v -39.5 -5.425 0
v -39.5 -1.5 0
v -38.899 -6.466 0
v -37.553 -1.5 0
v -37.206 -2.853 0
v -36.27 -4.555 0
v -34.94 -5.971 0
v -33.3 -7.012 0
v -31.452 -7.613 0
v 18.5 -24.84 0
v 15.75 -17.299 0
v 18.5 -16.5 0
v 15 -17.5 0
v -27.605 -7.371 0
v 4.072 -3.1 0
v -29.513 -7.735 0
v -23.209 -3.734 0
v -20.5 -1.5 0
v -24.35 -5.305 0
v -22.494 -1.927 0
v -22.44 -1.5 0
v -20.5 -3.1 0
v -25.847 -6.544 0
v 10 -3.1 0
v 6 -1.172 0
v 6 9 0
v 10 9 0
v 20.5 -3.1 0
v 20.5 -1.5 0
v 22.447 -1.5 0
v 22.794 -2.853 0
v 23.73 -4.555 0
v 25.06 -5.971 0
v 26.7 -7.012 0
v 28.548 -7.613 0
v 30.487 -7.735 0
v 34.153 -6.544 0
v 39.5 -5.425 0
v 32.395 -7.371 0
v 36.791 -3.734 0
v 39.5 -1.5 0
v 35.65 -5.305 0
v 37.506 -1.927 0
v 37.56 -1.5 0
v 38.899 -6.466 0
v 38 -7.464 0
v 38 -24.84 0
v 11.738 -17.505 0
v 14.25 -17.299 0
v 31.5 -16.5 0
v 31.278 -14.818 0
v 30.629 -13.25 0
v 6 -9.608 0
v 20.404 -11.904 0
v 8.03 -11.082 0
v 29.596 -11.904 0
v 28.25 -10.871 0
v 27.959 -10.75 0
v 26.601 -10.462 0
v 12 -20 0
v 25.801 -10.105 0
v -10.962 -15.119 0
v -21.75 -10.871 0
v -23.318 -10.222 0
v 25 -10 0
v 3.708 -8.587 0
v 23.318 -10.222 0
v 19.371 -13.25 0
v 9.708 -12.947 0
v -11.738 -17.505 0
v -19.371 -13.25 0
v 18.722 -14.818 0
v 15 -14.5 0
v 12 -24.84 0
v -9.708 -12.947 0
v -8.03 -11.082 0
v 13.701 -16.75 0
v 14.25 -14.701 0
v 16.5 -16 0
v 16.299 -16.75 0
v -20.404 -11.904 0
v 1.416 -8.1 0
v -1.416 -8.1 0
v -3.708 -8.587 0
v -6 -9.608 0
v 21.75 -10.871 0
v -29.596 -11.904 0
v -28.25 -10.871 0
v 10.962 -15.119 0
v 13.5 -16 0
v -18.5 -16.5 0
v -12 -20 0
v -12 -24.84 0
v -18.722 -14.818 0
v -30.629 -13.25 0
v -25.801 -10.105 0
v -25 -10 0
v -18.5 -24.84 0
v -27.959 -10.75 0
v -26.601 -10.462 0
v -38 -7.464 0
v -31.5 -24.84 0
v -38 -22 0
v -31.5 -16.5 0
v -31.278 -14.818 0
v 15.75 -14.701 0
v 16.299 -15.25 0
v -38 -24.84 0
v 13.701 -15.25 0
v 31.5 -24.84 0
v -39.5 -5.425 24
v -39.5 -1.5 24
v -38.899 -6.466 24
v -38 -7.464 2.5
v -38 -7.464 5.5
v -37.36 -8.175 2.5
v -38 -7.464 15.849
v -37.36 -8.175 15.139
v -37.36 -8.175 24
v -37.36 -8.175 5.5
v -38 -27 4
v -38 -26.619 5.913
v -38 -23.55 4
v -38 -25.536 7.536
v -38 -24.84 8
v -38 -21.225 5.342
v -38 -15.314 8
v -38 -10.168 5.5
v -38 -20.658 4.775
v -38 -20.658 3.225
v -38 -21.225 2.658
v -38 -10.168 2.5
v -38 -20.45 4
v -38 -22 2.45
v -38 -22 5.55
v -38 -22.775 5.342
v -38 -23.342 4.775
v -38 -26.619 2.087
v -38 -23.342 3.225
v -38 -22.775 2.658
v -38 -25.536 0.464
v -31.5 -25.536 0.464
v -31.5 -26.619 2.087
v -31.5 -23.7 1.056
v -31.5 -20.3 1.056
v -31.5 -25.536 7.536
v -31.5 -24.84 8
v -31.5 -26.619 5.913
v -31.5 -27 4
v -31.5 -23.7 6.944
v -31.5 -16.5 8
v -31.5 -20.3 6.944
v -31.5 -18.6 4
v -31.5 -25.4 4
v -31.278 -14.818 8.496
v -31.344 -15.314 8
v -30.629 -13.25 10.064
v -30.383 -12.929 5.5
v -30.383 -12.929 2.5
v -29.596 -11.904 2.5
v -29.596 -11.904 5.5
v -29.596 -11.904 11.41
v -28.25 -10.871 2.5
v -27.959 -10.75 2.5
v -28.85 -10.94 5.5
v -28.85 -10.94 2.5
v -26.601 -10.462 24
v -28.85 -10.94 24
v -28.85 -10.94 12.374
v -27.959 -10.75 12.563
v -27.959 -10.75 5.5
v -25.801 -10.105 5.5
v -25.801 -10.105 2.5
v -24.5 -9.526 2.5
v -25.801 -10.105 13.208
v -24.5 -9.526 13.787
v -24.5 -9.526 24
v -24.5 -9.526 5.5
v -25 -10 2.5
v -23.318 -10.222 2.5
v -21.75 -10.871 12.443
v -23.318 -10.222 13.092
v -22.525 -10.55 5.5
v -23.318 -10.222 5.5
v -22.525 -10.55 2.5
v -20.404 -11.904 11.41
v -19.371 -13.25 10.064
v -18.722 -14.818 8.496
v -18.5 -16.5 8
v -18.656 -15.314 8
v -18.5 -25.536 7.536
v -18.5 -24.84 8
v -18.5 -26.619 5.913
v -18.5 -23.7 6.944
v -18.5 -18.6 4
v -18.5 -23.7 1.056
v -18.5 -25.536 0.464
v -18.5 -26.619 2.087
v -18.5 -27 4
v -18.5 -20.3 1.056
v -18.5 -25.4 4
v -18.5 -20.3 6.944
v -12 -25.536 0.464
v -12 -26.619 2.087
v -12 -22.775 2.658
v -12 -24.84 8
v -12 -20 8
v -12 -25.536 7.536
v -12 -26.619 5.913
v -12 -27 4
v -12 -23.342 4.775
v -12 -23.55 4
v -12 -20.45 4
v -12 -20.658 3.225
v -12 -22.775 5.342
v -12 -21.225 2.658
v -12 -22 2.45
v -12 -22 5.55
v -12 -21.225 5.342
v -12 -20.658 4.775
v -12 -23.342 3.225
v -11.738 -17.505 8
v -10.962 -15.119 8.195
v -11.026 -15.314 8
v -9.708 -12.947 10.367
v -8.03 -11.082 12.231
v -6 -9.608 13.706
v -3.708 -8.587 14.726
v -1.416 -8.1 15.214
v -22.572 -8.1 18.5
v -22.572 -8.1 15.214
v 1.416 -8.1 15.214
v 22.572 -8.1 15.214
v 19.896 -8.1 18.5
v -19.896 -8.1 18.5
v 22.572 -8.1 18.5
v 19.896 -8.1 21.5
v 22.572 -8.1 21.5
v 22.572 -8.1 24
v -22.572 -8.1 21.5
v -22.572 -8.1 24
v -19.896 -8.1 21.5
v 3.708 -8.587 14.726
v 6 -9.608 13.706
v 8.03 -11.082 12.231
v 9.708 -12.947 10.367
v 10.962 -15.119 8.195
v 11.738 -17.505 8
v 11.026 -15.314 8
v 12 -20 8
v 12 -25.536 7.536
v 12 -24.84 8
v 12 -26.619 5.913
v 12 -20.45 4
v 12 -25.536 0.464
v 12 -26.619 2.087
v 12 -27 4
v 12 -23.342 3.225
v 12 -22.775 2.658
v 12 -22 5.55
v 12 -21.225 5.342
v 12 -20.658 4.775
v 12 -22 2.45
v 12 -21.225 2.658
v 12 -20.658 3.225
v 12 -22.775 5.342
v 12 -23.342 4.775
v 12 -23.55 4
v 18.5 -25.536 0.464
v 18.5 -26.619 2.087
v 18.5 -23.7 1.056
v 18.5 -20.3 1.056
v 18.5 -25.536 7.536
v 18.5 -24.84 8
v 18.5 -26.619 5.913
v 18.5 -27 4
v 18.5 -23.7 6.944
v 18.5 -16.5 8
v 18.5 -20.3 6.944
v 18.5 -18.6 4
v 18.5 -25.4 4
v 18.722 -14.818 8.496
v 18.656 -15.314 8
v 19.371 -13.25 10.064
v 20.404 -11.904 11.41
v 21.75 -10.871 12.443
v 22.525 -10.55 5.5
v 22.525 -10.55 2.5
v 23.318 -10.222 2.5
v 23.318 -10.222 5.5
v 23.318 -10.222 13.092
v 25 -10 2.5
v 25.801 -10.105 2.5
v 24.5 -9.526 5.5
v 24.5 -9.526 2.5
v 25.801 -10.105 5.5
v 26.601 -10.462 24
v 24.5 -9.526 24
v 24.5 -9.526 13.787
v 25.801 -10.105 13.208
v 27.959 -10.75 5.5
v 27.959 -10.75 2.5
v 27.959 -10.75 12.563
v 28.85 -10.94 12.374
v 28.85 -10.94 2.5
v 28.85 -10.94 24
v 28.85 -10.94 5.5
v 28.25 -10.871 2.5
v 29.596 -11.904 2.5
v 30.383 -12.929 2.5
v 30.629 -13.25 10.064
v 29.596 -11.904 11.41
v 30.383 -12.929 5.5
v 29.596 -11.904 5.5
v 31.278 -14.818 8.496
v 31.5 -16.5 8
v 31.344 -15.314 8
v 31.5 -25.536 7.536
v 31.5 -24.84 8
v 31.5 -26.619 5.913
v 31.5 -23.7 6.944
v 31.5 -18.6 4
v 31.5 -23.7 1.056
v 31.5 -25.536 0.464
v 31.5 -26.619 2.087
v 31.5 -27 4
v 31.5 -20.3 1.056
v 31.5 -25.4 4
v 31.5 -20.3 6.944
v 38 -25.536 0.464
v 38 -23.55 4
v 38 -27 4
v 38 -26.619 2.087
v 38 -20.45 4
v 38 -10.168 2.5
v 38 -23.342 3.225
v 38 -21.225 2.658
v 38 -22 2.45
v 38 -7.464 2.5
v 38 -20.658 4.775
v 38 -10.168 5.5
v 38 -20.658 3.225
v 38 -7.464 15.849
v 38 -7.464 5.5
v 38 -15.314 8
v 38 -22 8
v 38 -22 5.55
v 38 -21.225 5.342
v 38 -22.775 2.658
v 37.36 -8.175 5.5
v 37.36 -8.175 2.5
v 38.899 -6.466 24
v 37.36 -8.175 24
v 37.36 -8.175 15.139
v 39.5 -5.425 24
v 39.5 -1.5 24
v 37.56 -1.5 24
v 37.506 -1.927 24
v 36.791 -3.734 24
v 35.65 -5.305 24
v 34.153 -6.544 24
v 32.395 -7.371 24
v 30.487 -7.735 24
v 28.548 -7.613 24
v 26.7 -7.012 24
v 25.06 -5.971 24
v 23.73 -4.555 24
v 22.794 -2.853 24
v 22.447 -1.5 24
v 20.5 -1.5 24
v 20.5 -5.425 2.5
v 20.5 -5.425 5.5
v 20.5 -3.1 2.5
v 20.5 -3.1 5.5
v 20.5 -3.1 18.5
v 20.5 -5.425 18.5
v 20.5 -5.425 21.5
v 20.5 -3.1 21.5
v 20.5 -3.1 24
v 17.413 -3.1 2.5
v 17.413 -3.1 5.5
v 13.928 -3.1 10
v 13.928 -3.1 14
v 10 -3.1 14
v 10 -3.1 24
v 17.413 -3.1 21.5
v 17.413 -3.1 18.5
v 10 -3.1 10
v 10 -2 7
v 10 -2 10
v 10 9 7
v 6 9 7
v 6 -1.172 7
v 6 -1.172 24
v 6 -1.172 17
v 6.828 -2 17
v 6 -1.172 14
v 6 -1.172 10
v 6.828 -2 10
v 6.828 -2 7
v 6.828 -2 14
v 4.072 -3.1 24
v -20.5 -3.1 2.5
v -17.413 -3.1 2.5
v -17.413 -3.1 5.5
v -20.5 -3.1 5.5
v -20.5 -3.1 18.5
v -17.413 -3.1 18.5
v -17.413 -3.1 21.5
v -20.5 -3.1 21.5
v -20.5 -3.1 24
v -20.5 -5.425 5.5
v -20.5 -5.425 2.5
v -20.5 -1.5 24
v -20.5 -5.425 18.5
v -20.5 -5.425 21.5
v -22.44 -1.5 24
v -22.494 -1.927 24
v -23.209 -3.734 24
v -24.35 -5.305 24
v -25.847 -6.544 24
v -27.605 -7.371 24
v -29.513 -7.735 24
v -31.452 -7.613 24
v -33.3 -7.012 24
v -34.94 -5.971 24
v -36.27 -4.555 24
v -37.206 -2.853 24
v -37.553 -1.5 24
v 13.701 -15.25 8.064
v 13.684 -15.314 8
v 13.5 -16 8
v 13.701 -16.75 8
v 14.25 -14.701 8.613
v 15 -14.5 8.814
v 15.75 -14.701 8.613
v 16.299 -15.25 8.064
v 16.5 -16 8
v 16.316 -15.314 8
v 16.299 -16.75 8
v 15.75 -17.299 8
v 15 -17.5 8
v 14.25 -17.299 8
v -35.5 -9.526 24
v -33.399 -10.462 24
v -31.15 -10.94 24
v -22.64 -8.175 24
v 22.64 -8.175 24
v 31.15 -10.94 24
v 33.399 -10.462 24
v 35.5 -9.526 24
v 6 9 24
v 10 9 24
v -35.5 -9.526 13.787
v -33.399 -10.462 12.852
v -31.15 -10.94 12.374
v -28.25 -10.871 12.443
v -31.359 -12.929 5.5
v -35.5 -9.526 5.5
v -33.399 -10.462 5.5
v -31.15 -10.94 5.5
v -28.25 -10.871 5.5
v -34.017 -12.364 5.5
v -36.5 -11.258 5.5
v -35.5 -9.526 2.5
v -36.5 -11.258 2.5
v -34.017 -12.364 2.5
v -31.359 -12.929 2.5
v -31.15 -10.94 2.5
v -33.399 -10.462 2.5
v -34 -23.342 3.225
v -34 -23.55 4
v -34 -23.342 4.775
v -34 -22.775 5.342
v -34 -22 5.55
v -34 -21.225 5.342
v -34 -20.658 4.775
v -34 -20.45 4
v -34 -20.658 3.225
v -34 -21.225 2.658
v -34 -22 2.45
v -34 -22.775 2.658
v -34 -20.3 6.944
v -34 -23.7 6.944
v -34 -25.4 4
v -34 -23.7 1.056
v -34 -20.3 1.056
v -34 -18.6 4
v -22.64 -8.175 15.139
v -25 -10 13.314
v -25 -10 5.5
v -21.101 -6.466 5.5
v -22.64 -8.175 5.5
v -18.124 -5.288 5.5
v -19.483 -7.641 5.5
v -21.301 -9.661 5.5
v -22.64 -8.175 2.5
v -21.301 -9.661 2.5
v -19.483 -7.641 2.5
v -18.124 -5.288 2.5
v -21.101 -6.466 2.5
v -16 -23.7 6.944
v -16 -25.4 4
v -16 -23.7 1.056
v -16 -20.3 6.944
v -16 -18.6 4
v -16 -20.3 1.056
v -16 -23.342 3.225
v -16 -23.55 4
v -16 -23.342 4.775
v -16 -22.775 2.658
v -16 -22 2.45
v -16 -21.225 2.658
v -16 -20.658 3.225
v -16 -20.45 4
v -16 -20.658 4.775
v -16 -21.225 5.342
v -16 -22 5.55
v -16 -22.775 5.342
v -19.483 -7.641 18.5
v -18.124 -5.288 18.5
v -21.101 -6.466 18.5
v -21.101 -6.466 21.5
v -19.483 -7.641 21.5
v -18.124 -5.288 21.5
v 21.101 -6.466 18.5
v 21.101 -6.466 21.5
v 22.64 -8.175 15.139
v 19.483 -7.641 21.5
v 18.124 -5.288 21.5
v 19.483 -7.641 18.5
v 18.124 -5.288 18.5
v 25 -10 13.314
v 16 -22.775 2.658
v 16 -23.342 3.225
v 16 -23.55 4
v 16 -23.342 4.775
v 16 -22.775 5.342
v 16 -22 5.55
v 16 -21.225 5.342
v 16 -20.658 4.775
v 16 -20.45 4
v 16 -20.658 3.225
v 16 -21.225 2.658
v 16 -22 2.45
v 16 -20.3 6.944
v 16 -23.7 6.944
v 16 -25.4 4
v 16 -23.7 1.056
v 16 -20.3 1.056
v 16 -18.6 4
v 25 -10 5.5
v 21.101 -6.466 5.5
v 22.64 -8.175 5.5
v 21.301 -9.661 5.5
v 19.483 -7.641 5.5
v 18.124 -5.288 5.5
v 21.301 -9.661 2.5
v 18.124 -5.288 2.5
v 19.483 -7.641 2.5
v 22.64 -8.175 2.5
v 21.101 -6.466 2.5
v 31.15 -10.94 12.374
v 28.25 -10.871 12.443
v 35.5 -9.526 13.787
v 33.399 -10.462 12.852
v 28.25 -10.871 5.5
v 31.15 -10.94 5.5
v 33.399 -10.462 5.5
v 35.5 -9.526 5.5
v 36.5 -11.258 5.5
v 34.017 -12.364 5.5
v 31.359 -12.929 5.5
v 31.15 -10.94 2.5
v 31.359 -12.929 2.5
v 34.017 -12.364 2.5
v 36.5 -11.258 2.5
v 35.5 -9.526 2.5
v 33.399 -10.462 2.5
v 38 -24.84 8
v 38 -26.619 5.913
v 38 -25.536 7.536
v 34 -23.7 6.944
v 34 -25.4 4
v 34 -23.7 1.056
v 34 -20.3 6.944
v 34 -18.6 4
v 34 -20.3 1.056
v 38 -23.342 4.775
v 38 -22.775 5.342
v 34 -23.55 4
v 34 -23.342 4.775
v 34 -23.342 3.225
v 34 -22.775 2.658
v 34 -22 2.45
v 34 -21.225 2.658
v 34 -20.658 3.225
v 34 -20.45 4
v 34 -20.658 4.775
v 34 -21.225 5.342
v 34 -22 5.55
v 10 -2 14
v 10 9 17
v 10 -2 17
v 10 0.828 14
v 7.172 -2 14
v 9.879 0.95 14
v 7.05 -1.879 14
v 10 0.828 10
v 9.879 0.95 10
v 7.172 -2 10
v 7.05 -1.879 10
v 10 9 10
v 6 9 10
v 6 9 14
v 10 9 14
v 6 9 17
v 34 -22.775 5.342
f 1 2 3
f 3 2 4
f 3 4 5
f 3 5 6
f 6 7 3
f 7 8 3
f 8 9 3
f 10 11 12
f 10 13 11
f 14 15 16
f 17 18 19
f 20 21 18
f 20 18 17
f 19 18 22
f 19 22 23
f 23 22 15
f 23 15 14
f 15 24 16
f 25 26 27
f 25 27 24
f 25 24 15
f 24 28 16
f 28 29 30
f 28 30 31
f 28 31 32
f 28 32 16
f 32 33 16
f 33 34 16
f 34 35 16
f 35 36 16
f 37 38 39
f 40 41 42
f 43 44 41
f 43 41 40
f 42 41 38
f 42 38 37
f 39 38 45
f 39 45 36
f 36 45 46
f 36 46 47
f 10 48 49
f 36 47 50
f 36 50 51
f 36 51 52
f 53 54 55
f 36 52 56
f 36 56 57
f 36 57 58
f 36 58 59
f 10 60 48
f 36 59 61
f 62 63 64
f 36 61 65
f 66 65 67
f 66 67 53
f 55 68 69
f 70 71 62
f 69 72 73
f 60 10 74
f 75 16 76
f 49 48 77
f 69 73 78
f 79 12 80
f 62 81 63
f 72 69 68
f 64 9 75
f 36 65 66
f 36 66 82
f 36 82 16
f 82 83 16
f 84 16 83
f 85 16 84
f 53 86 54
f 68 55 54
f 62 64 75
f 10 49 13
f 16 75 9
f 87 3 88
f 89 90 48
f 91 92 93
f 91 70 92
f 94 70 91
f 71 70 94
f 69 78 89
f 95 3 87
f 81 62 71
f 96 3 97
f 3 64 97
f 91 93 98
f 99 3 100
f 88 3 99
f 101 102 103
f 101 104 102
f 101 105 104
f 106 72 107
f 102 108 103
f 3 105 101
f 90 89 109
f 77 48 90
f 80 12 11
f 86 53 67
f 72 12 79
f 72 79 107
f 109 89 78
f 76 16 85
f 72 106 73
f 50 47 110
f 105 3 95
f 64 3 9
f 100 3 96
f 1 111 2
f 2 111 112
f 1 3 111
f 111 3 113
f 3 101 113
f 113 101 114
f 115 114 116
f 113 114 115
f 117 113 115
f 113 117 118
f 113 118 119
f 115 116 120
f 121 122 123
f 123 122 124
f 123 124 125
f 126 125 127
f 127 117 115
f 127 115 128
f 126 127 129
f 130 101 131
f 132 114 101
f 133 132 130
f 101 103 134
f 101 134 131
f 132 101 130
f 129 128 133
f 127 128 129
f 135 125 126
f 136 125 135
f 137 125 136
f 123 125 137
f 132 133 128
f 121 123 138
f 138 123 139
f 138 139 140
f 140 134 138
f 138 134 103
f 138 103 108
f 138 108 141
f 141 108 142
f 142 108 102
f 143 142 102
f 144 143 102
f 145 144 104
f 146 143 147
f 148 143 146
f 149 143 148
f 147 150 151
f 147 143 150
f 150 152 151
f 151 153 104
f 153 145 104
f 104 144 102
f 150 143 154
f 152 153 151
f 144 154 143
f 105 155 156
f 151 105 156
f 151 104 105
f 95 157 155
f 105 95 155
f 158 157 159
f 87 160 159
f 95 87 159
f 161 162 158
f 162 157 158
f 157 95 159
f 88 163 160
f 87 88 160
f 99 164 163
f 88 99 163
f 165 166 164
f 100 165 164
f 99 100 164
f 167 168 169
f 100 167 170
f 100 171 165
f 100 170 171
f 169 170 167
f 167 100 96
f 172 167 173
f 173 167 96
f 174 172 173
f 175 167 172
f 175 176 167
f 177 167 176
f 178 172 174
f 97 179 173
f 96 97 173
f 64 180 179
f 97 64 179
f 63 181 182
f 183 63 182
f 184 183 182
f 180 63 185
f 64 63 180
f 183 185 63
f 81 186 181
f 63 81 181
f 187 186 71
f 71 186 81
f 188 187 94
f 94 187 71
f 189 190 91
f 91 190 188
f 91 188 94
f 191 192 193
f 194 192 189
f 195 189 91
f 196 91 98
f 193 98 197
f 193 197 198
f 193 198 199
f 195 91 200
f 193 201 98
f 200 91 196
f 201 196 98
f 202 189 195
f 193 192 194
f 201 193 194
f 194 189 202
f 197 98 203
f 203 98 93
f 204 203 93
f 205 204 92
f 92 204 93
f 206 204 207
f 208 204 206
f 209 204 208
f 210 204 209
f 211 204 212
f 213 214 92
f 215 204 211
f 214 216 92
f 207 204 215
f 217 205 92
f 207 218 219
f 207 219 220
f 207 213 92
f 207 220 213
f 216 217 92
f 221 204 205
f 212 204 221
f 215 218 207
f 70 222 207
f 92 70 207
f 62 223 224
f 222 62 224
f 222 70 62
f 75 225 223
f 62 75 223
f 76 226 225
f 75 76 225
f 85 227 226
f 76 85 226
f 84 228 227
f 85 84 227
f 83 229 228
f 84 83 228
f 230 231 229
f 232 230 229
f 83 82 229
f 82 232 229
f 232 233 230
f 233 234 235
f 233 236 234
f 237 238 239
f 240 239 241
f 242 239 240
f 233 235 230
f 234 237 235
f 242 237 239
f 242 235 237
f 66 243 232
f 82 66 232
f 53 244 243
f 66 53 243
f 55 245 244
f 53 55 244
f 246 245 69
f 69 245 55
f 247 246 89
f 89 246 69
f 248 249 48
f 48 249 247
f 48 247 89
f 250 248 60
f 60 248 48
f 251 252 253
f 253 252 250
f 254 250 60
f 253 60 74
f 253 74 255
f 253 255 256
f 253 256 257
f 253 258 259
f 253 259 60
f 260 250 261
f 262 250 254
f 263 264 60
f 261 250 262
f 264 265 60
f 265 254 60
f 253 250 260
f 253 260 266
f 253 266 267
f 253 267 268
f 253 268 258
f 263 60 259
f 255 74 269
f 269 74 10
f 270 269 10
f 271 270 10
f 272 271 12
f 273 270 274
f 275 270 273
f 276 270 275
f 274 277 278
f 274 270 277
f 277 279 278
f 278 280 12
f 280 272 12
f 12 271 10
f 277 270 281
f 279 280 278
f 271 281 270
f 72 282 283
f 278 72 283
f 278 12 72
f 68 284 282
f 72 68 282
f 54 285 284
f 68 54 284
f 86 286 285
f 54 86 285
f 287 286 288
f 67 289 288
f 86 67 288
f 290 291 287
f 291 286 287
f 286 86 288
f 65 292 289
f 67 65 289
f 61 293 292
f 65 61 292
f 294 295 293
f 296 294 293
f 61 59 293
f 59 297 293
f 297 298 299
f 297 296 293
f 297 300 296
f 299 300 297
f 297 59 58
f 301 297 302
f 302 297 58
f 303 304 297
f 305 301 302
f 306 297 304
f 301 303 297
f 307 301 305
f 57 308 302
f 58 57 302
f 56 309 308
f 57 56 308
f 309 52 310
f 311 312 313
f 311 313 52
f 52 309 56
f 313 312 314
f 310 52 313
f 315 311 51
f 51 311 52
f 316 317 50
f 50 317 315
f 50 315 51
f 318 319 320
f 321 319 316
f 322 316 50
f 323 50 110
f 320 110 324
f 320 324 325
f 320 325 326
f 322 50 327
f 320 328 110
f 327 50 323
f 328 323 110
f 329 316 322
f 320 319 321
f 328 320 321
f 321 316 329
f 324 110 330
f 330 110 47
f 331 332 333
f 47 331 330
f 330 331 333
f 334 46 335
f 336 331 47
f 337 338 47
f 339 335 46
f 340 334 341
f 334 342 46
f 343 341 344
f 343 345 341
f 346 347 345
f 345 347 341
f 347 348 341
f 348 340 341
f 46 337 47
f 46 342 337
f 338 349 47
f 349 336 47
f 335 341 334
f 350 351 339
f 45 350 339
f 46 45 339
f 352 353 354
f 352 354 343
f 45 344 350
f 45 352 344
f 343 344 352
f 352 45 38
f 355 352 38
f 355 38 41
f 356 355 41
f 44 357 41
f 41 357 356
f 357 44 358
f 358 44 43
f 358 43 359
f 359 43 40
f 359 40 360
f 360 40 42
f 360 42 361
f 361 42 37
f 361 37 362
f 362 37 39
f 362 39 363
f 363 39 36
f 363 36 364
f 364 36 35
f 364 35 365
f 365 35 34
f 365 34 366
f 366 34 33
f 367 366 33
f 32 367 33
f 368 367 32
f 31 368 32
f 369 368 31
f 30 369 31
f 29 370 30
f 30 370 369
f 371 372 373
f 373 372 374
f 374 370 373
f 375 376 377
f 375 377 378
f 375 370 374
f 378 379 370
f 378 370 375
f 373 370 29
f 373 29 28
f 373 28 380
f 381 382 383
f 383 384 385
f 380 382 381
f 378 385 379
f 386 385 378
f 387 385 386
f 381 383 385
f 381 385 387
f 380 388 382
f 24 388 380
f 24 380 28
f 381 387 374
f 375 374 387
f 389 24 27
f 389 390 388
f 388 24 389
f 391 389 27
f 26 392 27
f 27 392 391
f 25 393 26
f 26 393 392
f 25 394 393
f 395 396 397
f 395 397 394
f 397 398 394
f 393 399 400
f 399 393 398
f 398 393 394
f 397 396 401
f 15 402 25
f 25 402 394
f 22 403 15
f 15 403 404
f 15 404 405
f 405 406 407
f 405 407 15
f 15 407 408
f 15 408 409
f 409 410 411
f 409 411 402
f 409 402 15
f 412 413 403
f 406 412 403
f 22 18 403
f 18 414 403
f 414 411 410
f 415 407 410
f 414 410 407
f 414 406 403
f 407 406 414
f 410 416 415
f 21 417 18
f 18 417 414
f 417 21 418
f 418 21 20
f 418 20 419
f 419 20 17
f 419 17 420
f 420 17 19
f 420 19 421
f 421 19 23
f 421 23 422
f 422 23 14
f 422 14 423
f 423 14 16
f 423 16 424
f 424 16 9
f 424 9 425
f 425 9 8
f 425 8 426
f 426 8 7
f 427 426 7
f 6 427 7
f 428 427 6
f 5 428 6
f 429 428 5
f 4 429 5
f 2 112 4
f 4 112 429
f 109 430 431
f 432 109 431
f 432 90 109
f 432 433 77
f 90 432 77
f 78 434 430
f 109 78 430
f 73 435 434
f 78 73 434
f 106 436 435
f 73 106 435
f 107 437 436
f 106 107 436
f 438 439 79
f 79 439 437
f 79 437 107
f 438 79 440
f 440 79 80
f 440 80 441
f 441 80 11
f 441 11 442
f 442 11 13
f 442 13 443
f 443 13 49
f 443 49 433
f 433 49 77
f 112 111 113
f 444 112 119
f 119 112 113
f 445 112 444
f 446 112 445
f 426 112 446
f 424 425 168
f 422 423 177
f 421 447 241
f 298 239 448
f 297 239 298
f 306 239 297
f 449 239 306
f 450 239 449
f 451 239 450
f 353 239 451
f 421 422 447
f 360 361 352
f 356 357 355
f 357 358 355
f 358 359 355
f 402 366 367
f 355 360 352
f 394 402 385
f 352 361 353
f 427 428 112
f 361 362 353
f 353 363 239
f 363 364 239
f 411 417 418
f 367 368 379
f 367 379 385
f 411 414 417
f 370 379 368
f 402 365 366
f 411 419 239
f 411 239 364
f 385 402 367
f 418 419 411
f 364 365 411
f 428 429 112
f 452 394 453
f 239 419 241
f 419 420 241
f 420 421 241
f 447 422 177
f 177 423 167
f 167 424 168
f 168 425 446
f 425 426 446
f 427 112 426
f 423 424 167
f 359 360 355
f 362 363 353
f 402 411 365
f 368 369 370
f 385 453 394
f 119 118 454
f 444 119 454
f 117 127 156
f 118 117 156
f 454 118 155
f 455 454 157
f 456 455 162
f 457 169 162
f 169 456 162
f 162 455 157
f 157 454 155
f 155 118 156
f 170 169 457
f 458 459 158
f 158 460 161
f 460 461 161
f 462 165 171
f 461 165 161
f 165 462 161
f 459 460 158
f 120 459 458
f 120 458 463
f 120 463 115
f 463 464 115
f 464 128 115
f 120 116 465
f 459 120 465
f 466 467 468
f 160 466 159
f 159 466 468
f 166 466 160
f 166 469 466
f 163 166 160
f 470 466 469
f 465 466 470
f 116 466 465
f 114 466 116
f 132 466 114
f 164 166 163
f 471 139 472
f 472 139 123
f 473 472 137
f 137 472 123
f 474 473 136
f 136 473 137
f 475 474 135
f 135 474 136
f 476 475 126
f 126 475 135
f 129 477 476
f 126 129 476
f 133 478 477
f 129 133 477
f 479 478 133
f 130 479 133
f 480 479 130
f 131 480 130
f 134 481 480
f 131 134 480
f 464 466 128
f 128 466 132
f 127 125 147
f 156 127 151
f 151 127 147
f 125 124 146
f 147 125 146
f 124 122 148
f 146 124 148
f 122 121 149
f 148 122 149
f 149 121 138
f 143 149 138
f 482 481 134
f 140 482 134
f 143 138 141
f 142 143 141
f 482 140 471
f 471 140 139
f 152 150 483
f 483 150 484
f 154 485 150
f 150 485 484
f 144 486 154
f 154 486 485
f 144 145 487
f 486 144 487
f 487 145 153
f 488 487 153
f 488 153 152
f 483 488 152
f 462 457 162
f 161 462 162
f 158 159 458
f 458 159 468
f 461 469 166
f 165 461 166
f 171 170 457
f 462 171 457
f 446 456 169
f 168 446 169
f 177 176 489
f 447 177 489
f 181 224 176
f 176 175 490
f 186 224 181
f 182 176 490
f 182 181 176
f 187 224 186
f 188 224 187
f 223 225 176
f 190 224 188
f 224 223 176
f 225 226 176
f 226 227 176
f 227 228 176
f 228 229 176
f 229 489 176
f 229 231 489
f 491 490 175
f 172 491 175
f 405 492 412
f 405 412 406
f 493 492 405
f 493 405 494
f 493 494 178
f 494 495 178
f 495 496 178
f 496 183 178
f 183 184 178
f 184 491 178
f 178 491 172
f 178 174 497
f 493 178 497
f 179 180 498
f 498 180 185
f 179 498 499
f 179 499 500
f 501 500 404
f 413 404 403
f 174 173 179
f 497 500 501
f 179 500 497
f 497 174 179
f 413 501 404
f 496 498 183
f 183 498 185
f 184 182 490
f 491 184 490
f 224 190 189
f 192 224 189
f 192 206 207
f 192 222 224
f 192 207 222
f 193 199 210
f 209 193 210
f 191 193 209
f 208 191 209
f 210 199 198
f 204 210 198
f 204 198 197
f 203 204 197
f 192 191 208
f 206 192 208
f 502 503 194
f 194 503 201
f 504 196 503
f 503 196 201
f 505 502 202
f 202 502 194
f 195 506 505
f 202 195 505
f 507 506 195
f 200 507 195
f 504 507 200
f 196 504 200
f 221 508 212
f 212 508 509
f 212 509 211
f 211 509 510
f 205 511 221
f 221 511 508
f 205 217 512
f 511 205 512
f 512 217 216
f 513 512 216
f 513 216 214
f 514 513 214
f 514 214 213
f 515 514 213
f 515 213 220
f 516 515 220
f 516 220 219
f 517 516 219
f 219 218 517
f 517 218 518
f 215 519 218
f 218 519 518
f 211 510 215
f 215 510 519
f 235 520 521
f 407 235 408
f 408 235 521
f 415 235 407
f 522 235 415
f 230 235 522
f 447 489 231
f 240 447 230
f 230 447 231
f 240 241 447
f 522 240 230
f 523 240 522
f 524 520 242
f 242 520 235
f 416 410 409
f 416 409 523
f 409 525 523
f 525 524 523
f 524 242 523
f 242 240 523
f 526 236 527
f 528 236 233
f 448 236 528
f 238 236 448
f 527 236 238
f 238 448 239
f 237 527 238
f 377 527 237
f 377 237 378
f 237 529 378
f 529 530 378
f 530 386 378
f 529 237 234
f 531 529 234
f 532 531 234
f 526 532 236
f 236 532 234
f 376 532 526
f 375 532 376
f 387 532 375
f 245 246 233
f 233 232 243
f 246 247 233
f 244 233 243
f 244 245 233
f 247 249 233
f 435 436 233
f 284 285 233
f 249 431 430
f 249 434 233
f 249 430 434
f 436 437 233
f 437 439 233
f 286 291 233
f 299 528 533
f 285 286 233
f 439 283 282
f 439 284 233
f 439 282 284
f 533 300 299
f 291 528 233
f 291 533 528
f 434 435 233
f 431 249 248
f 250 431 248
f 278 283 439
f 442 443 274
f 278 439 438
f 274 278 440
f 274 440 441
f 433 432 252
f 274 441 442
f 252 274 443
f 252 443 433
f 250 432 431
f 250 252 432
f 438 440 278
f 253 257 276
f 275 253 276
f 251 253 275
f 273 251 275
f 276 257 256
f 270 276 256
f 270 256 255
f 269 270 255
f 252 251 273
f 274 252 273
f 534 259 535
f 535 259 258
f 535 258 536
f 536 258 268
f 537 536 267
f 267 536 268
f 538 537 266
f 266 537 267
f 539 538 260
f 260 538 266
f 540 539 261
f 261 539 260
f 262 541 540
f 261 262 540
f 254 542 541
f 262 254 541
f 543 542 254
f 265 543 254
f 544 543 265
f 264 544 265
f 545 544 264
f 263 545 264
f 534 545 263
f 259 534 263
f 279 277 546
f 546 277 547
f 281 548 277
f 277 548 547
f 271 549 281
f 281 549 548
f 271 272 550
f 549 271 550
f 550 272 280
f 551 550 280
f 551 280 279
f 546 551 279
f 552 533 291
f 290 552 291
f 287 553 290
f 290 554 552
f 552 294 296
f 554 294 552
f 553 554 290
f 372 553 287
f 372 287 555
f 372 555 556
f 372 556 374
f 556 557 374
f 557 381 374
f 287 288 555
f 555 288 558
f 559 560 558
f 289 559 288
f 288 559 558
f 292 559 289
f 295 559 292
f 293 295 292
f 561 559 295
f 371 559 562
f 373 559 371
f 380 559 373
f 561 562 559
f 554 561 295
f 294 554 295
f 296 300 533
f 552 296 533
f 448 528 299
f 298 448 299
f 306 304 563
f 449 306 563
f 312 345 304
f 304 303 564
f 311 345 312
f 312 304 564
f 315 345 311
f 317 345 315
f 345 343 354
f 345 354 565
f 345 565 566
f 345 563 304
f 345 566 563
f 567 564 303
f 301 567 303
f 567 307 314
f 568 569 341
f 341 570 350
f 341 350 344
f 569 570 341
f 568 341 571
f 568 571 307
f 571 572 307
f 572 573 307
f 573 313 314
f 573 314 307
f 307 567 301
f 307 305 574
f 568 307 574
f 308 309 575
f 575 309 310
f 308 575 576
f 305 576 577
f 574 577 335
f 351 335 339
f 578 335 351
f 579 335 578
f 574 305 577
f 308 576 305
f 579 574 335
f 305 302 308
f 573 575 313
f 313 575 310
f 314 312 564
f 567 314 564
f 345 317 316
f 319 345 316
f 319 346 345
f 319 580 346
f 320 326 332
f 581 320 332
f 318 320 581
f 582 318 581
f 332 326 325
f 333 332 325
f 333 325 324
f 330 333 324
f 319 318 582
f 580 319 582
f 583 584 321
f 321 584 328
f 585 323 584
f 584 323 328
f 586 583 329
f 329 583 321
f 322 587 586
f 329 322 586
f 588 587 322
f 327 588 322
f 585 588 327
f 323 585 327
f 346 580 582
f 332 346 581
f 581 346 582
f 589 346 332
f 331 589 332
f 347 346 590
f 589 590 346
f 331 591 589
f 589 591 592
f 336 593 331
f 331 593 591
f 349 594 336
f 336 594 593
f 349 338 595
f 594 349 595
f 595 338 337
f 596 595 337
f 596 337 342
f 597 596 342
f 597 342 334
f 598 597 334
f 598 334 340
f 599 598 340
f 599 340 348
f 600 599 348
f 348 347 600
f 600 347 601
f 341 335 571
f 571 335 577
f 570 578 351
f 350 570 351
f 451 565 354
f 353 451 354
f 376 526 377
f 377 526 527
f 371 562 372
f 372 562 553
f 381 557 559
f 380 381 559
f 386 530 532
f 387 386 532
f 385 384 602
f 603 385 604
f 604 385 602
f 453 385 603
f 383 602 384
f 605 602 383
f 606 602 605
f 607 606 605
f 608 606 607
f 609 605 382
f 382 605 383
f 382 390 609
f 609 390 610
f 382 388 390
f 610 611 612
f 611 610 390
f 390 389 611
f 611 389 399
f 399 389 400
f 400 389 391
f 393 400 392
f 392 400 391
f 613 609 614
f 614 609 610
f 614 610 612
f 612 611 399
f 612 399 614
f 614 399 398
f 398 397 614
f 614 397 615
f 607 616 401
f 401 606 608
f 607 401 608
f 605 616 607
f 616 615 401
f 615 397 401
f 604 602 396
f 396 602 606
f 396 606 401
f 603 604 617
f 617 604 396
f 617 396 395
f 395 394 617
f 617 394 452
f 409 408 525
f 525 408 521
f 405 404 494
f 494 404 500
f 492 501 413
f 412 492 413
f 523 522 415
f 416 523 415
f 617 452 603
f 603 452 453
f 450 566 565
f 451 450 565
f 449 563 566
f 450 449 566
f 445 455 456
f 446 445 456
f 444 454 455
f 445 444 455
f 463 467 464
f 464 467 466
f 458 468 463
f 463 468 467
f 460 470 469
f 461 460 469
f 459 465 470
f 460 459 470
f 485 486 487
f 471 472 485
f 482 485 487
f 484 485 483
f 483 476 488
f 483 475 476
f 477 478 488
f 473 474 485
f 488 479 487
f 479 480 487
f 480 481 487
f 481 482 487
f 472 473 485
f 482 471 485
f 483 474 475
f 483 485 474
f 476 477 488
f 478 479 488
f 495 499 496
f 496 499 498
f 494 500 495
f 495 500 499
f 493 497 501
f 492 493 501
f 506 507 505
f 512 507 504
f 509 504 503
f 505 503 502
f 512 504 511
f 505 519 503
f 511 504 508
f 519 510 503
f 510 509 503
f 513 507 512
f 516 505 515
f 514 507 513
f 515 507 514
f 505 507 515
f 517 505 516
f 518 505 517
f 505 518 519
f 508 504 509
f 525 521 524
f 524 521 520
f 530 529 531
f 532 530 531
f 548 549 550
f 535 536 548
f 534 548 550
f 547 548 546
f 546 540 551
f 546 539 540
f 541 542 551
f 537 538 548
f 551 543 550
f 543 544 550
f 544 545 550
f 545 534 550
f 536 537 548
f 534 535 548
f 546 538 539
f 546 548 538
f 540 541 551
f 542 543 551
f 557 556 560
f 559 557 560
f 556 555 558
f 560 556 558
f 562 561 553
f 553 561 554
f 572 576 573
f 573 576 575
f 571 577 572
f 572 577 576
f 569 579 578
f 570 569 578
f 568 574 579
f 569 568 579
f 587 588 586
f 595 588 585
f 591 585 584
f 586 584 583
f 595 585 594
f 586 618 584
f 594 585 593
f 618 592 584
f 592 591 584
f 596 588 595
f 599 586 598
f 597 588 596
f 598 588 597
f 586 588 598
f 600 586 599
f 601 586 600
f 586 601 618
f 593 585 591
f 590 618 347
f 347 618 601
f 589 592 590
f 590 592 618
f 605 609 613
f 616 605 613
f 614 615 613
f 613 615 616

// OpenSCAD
// file: configuration.scad
motor_end_height=44;
idler_end_height=28;
carriage_height=24;
platform_thickness=8;

sanguinololu=true;					// places mounting holes for the Sanguinololu controller
carbon_rods=true;					// turns on option for carbon diagonal rods just for looks!

frame_thickness=6;   				// 6mm acrylic
pcb_thickness=2;						// used for rendering PCB and approximating build volume

smooth_rod_length=495;  				// determins vertical build height with 508 for 8" 
rod_diameter=8;						// might be interesting to have larger rods
platform_hinge_offset=33;
carriage_hinge_offset=22;

printbed=[155,155];  				// printrbed 6x6 -  210,210 for prusa 8x8 platform
printbed_screw_spacing=[146.5,147]; 	// sets screw spacing for heated bed default: printrbed

tower_radius = printbed[0]*0.9;
rod_length=printbed[0]*1.2;

corner_radius=12;
frame_radius=(tower_radius-rod_diameter/2-corner_radius)/cos(30);
// main file
include <configuration.scad>

width = 76;
height = carriage_height;

offset = 25;
cutout = 13;
middle = 2*offset - width/2;

module parallel_joints(reinforced) {
  difference() {
    union() {
      intersection() {
        cube([width, 20, 8], center=true);
        rotate([0, 90, 0]) cylinder(r=5, h=width, center=true);
      }
      intersection() {
        translate([0, 18, 4]) rotate([45, 0, 0])
          cube([width, reinforced, reinforced], center=true);
        translate([0, 0, 20]) cube([width, 35, 40], center=true);
      }
      translate([0, 8, 0]) cube([width, 16, 8], center=true);
    }
    rotate([0, 90, 0]) cylinder(r=1.55, h=80, center=true, $fn=12);

    for (x = [-offset, offset]) {
      translate([x, 5.5, 0])
        cylinder(r=cutout/2, h=100, center=true, $fn=24);
      translate([x, -4.5, 0])
        cube([cutout, 20, 100], center=true);
      translate([x, 0, 0]) rotate([0, 90, 0]) rotate([0, 0, 30])
        cylinder(r=3.4, h=18, center=true, $fn=6);
    }
    translate([0, 2, 0]) cylinder(r=middle, h=100, center=true);
    translate([0, -8, 0]) cube([2*middle, 20, 100], center=true);
  }
}

module lm8uu_mount(d, h) {
  union() {
    difference() {
      intersection() {
        cylinder(r=11, h=h, center=true);
        translate([0, -8, 0]) cube([19, 13, h+1], center=true);
      }
      cylinder(r=d/2, h=h+1, center=true);
    }
  }
}

module belt_mount() {
  difference() {
    union() {
      difference() {
        translate([8, 2, 0]) cube([4, 14, height], center=true);
        for (z = [-3.5, 3.5])
          translate([8, 5, z])
            cube([5, 14, 3], center=true);
      }

      // ribu1
      translate([6, -4, 0])
        rotate([0, 0, 45])
          cube([4, 4, height], center=true);

      // ribu2
      translate([12, -4, 0])
        rotate([0, 0, 45])
          cube([4, 10, 4], center=true);
/*
      for (y = [1.5, 5, 8.5]) {
        translate([8, y, 0]) cube([4, 1.2, height], center=true);
      }
//*/
    }
  }
}

module carriage() {
  translate([0, 0, height/2]) 
  union() {
    for (x = [-30, 30]) {
      translate([x, 0, 0]) lm8uu_mount(d=15.5, h=24);
    }
    belt_mount();
    difference() {
      union() {
        translate([0, -5.6, 0])
          cube([50, 5, height], center=true);
        translate([0, -carriage_hinge_offset, -height/2+4])
          parallel_joints(16);
      }
      // Screw hole for adjustable top endstop.
      translate([15, -16, -height/2+4])
        cylinder(r=1.5, h=20, center=true, $fn=12);
      for (x = [-30, 30]) {
        translate([x, 0, 0])
          cylinder(r=8, h=height+1, center=true);
        // Zip tie tunnels.
        for (z = [-height/2+4, height/2-4])
          translate([x, 0, z])
            cylinder(r=13, h=3, center=true);
      }
    }
  }
}

carriage();

// Uncomment the following lines to check endstop alignment.
// use <idler_end.scad>;
// translate([0, 0, -20]) rotate([180, 0, 0]) idler_end();
